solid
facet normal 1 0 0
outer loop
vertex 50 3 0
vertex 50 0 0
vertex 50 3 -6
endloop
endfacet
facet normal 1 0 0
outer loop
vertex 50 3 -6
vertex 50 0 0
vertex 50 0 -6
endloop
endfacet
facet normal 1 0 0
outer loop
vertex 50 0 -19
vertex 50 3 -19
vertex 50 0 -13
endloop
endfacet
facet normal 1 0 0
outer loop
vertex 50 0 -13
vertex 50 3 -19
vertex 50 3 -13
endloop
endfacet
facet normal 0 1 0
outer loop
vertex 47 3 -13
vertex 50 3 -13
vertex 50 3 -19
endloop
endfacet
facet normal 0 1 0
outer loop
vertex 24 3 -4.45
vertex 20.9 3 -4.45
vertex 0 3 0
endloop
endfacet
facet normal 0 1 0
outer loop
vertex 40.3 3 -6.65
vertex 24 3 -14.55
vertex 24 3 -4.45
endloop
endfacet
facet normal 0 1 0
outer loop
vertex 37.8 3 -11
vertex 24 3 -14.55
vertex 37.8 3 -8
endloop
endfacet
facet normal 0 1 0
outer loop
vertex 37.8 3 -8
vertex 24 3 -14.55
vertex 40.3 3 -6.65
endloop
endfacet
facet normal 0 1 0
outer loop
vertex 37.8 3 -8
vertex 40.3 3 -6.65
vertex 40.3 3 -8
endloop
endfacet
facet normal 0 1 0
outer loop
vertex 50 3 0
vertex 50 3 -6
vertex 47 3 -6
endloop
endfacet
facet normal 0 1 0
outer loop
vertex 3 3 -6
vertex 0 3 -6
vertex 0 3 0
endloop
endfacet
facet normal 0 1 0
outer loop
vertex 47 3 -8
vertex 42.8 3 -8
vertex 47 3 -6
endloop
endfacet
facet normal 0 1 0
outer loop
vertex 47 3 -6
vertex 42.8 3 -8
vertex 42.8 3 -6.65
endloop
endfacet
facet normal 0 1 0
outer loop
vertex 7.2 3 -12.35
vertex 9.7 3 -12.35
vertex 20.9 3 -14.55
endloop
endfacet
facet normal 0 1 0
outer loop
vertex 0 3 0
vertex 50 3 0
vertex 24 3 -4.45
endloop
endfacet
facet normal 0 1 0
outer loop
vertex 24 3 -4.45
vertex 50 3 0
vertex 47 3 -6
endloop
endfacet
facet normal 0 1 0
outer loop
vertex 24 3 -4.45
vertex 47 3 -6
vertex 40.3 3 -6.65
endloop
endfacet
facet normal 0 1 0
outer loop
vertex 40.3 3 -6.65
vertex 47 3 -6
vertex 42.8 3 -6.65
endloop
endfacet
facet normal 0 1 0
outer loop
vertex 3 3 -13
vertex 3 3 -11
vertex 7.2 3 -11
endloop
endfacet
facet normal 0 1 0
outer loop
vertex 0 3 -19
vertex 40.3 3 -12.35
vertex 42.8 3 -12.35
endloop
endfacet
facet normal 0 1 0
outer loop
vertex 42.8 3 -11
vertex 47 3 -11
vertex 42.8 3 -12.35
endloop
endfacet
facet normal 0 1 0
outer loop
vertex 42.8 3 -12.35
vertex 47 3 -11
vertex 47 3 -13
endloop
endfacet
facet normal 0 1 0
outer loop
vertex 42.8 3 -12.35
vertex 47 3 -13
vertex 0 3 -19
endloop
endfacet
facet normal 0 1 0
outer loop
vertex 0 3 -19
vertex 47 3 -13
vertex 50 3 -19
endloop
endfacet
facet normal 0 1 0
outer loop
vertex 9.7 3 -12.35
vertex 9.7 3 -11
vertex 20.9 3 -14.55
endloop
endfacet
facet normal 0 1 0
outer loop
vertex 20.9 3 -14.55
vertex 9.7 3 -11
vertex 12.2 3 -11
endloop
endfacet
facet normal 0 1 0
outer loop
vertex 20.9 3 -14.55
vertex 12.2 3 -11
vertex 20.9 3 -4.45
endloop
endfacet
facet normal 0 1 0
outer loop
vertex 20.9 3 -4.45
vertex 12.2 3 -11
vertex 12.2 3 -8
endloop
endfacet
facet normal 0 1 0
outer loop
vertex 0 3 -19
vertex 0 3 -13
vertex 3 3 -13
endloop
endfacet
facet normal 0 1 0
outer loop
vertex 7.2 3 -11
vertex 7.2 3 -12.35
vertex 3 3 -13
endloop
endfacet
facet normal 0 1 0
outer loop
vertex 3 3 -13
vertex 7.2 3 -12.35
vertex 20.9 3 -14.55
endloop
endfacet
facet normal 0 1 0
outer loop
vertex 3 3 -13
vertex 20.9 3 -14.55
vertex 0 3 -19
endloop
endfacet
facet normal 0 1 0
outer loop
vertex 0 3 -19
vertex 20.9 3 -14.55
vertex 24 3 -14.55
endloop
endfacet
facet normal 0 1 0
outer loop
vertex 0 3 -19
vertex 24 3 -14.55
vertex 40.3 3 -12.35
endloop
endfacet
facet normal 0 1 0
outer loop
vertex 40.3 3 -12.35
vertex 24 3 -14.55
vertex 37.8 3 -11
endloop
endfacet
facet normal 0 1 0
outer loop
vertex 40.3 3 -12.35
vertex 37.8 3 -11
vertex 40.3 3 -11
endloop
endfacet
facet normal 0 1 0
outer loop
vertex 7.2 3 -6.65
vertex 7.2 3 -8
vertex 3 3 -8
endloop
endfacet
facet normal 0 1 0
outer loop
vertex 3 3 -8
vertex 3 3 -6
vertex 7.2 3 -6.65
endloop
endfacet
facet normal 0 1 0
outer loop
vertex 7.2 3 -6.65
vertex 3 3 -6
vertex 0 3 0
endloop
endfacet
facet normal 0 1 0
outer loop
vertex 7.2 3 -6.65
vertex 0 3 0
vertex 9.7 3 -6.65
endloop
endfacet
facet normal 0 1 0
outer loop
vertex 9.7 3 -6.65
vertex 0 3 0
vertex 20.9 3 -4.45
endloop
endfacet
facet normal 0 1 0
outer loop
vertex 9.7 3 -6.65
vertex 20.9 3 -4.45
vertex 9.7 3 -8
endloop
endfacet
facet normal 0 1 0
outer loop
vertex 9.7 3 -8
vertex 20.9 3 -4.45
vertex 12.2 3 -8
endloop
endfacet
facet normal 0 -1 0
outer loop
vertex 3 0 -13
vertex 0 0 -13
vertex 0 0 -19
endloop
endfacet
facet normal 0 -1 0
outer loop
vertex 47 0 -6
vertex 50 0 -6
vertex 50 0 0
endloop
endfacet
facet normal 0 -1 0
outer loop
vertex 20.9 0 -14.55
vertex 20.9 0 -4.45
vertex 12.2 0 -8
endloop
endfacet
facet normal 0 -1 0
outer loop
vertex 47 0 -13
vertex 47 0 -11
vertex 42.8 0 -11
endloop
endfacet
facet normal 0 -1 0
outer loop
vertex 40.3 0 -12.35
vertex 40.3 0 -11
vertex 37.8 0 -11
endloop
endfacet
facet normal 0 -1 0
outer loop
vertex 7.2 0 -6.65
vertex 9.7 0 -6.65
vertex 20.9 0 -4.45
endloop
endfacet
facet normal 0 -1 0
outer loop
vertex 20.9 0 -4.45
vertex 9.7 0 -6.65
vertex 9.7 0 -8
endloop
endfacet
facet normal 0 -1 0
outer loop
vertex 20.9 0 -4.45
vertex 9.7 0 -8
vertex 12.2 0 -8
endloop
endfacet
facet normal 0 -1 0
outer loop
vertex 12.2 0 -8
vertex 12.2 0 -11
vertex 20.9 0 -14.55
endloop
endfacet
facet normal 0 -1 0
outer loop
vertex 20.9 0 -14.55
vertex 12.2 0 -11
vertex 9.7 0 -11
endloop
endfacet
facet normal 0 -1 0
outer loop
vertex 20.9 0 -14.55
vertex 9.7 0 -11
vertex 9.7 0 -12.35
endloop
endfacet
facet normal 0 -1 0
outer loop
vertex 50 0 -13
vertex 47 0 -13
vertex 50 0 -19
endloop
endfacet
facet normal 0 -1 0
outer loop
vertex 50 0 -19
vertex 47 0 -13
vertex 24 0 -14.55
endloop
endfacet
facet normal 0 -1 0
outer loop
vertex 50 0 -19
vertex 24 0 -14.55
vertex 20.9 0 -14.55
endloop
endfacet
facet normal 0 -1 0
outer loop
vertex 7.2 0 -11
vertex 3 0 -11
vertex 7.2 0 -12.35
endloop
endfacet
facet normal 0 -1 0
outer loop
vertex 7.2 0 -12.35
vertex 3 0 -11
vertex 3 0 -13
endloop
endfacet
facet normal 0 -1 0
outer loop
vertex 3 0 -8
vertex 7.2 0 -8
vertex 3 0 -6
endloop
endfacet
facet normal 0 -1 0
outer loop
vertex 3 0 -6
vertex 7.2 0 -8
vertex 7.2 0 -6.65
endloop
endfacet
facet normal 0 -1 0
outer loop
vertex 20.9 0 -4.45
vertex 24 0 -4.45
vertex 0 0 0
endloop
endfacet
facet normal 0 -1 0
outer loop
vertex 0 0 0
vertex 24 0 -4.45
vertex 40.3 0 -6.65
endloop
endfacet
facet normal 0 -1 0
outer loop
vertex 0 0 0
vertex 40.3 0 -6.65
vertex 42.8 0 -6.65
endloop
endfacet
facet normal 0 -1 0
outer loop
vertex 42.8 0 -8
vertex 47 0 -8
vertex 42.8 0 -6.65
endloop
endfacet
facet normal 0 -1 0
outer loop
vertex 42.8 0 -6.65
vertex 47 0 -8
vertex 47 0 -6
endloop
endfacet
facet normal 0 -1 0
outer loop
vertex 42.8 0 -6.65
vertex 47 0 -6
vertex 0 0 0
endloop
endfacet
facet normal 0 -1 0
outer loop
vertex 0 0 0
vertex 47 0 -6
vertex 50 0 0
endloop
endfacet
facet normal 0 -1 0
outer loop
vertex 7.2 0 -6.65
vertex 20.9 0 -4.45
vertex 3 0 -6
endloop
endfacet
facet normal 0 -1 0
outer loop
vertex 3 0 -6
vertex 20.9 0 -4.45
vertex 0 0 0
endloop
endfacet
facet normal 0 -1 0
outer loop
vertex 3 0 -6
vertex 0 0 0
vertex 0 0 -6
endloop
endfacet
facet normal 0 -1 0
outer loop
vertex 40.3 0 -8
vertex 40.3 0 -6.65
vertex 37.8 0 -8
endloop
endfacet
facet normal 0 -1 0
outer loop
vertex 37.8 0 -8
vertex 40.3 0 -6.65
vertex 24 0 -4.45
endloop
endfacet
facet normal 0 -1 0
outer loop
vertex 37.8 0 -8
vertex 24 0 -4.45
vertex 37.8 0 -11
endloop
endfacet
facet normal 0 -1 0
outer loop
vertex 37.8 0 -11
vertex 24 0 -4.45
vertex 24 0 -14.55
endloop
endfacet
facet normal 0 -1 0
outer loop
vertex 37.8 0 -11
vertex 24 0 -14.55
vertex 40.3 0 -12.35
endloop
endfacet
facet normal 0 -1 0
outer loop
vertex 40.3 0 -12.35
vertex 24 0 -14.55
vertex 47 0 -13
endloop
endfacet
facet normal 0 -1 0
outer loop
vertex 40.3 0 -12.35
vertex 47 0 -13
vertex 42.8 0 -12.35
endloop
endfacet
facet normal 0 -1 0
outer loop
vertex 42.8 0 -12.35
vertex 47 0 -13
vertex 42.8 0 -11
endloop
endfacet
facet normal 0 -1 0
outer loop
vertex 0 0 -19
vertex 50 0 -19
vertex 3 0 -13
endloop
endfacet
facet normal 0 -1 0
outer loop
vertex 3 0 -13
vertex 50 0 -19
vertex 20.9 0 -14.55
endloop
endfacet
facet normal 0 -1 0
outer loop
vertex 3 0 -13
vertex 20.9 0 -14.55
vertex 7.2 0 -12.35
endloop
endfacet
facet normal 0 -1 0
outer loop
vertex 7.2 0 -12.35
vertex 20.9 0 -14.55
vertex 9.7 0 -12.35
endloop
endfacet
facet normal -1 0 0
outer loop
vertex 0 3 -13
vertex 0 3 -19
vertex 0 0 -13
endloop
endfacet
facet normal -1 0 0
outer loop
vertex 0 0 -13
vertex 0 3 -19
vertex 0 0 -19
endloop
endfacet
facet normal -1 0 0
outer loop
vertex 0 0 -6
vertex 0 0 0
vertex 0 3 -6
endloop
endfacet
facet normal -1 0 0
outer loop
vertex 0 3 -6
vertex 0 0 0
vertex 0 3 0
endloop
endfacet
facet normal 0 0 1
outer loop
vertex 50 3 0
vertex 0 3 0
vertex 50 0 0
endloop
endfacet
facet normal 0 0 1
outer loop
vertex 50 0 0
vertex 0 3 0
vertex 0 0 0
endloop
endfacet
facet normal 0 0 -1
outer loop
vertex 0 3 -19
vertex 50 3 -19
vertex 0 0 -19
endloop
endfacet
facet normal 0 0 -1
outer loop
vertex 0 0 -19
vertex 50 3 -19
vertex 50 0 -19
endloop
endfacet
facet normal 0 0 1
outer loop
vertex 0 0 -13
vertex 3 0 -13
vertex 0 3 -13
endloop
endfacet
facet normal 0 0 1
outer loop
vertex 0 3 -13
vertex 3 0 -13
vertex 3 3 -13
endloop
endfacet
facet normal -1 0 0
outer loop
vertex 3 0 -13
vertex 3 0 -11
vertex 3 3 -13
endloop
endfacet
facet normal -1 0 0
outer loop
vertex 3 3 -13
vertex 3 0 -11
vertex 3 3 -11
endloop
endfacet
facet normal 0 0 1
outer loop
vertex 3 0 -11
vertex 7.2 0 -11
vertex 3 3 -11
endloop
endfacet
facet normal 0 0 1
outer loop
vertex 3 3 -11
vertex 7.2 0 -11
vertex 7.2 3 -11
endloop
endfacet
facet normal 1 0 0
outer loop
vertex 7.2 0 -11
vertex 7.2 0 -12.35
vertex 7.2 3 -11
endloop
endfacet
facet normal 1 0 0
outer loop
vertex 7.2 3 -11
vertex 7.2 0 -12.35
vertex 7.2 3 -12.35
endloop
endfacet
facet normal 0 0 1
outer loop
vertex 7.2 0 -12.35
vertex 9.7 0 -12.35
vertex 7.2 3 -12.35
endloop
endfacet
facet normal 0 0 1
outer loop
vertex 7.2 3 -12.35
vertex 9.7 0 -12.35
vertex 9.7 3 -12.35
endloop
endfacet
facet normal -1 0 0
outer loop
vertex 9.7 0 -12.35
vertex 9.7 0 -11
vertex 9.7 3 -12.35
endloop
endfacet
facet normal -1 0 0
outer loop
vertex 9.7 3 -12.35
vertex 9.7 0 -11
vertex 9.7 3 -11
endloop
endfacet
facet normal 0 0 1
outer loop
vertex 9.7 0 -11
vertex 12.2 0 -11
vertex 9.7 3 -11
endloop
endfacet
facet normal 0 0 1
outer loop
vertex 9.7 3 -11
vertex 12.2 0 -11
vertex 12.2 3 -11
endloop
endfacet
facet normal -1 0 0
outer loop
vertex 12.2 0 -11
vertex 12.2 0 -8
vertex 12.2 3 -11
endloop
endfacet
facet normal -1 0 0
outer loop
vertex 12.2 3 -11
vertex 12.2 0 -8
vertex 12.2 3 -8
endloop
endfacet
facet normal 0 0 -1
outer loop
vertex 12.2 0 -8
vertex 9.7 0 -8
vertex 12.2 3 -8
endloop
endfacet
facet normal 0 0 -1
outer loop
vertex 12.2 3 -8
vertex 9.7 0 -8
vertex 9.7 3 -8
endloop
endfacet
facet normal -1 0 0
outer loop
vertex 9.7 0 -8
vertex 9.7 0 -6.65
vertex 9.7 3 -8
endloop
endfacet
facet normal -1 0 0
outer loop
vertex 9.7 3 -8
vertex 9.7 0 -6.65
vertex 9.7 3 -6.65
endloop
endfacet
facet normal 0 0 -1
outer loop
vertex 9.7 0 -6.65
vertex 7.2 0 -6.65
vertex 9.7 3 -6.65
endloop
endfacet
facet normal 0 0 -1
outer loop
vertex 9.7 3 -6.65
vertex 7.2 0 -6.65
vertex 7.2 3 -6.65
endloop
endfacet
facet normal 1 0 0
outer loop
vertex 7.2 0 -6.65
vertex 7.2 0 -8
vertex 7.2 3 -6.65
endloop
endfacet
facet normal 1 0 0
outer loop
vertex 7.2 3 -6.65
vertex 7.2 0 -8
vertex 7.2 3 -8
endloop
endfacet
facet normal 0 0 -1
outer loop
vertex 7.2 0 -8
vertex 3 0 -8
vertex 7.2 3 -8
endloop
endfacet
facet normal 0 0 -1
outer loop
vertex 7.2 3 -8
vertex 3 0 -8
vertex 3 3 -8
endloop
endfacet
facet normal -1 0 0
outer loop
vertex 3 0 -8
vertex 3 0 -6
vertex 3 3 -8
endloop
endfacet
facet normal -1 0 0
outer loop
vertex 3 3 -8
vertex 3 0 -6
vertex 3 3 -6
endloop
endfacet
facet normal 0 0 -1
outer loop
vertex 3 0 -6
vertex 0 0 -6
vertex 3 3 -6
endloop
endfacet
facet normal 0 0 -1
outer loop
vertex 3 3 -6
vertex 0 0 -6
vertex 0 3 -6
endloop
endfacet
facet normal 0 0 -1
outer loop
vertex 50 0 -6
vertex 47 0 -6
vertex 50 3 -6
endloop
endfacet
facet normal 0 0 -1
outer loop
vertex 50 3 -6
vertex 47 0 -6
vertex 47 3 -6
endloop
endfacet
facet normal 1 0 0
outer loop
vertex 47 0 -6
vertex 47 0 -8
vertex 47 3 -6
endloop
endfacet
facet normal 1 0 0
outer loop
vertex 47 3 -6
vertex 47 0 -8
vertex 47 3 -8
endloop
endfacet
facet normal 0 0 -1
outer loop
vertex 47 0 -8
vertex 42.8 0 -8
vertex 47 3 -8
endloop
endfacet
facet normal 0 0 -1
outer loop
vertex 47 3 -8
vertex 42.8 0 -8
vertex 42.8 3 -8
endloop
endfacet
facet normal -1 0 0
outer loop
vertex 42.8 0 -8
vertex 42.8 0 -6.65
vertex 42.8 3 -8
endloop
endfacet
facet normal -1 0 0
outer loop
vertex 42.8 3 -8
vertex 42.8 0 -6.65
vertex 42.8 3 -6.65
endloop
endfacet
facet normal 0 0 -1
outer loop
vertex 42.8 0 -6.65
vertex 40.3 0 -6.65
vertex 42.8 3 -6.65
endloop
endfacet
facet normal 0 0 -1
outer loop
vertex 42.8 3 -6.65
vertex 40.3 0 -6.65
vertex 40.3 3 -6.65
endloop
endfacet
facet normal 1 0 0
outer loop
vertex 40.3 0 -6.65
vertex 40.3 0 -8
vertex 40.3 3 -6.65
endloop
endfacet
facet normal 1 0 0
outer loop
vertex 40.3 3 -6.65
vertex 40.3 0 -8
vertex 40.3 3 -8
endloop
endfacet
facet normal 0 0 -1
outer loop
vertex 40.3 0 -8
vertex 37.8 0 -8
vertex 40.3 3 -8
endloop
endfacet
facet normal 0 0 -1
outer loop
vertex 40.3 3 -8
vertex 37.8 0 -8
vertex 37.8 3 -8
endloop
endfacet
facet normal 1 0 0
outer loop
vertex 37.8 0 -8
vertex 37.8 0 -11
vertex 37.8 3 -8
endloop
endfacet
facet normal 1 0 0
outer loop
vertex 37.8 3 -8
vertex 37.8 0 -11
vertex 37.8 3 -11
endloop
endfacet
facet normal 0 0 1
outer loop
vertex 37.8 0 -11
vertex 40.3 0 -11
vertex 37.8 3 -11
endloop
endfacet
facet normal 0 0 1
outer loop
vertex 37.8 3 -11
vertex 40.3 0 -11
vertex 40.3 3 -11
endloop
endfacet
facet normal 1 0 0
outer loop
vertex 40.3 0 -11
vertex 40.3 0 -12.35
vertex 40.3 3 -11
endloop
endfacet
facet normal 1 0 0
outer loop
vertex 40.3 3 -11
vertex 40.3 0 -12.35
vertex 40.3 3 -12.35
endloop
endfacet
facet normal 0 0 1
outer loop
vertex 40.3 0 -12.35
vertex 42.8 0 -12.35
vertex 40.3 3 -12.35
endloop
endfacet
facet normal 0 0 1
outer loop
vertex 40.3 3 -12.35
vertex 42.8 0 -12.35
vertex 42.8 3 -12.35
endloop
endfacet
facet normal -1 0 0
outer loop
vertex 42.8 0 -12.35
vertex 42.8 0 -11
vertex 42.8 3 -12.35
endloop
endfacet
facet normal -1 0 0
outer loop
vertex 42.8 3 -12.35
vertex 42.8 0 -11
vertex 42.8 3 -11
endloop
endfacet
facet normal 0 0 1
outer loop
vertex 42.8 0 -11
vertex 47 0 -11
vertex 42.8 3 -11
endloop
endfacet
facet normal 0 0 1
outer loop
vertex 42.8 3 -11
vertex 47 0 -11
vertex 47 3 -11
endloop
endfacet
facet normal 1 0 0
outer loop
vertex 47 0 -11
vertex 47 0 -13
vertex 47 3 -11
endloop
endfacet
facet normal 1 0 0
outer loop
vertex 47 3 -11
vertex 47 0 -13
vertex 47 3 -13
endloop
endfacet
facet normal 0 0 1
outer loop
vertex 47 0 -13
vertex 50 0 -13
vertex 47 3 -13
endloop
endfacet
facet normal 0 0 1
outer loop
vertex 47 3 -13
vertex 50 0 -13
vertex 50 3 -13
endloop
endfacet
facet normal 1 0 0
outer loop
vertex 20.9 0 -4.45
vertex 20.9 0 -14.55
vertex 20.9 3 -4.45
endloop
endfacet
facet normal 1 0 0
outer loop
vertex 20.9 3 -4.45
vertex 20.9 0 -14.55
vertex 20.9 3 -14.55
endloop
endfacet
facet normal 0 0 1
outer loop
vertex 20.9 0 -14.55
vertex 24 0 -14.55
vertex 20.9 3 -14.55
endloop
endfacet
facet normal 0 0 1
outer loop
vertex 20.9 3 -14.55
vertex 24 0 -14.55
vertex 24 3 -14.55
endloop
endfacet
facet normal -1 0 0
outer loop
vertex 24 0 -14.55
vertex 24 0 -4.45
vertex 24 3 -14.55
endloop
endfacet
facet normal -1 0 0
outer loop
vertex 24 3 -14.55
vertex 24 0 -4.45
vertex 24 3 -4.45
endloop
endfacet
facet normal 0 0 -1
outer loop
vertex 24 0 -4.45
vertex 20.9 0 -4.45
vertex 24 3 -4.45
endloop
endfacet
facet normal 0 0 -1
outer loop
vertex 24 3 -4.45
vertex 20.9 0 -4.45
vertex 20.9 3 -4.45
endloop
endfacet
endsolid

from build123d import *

# Parameters (mm, degrees)
SKETCH2_W           = 50
SKETCH2_H           = 19
BOSS_EXTRUDE1_DEPTH = 3
CUT_EXTRUDE1_DEPTH  = 4
SKETCH4_W           = 3.1
SKETCH4_H           = 10.1
CUT_EXTRUDE2_DEPTH  = 4


with BuildPart() as part:
    # Sketch2 → Boss-Extrude1 (new body)
    with BuildSketch(Plane(origin=(0, 0, 0), x_dir=(1, 0, 0), z_dir=(0, 1, 0))):
        with Locations((25, 9.5)):
            Rectangle(SKETCH2_W, SKETCH2_H)
    extrude(amount=BOSS_EXTRUDE1_DEPTH)

    # Sketch3 → Cut-Extrude1 (cut, through all)
    with BuildSketch(Plane(origin=(0, 3, 0), x_dir=(1, 0, 0), z_dir=(0, 1, 0))):
        Polygon((0, 13), (3, 13), (3, 11), (7.2, 11), (7.2, 12.35), (9.7, 12.35), (9.7, 11), (12.2, 11), (12.2, 8), (9.7, 8), (9.7, 6.65), (7.2, 6.65), (7.2, 8), (3, 8), (3, 6), (0, 6), align=None)
    cut_extrude1 = extrude(amount=-CUT_EXTRUDE1_DEPTH, mode=Mode.SUBTRACT)

    # Mirror1: Cut-Extrude1 across plane
    add(cut_extrude1.mirror(Plane(origin=(25, 0, 0), x_dir=(0, 0, 1), z_dir=(1, 0, 0))), mode=Mode.SUBTRACT)

    # Sketch4 → Cut-Extrude2 (cut, through all)
    with BuildSketch(Plane(origin=(0, 3, 0), x_dir=(1, 0, 0), z_dir=(0, 1, 0))):
        with Locations((22.45, 9.5)):
            Rectangle(SKETCH4_W, SKETCH4_H)
    extrude(amount=-CUT_EXTRUDE2_DEPTH, mode=Mode.SUBTRACT)


solid = part.part
